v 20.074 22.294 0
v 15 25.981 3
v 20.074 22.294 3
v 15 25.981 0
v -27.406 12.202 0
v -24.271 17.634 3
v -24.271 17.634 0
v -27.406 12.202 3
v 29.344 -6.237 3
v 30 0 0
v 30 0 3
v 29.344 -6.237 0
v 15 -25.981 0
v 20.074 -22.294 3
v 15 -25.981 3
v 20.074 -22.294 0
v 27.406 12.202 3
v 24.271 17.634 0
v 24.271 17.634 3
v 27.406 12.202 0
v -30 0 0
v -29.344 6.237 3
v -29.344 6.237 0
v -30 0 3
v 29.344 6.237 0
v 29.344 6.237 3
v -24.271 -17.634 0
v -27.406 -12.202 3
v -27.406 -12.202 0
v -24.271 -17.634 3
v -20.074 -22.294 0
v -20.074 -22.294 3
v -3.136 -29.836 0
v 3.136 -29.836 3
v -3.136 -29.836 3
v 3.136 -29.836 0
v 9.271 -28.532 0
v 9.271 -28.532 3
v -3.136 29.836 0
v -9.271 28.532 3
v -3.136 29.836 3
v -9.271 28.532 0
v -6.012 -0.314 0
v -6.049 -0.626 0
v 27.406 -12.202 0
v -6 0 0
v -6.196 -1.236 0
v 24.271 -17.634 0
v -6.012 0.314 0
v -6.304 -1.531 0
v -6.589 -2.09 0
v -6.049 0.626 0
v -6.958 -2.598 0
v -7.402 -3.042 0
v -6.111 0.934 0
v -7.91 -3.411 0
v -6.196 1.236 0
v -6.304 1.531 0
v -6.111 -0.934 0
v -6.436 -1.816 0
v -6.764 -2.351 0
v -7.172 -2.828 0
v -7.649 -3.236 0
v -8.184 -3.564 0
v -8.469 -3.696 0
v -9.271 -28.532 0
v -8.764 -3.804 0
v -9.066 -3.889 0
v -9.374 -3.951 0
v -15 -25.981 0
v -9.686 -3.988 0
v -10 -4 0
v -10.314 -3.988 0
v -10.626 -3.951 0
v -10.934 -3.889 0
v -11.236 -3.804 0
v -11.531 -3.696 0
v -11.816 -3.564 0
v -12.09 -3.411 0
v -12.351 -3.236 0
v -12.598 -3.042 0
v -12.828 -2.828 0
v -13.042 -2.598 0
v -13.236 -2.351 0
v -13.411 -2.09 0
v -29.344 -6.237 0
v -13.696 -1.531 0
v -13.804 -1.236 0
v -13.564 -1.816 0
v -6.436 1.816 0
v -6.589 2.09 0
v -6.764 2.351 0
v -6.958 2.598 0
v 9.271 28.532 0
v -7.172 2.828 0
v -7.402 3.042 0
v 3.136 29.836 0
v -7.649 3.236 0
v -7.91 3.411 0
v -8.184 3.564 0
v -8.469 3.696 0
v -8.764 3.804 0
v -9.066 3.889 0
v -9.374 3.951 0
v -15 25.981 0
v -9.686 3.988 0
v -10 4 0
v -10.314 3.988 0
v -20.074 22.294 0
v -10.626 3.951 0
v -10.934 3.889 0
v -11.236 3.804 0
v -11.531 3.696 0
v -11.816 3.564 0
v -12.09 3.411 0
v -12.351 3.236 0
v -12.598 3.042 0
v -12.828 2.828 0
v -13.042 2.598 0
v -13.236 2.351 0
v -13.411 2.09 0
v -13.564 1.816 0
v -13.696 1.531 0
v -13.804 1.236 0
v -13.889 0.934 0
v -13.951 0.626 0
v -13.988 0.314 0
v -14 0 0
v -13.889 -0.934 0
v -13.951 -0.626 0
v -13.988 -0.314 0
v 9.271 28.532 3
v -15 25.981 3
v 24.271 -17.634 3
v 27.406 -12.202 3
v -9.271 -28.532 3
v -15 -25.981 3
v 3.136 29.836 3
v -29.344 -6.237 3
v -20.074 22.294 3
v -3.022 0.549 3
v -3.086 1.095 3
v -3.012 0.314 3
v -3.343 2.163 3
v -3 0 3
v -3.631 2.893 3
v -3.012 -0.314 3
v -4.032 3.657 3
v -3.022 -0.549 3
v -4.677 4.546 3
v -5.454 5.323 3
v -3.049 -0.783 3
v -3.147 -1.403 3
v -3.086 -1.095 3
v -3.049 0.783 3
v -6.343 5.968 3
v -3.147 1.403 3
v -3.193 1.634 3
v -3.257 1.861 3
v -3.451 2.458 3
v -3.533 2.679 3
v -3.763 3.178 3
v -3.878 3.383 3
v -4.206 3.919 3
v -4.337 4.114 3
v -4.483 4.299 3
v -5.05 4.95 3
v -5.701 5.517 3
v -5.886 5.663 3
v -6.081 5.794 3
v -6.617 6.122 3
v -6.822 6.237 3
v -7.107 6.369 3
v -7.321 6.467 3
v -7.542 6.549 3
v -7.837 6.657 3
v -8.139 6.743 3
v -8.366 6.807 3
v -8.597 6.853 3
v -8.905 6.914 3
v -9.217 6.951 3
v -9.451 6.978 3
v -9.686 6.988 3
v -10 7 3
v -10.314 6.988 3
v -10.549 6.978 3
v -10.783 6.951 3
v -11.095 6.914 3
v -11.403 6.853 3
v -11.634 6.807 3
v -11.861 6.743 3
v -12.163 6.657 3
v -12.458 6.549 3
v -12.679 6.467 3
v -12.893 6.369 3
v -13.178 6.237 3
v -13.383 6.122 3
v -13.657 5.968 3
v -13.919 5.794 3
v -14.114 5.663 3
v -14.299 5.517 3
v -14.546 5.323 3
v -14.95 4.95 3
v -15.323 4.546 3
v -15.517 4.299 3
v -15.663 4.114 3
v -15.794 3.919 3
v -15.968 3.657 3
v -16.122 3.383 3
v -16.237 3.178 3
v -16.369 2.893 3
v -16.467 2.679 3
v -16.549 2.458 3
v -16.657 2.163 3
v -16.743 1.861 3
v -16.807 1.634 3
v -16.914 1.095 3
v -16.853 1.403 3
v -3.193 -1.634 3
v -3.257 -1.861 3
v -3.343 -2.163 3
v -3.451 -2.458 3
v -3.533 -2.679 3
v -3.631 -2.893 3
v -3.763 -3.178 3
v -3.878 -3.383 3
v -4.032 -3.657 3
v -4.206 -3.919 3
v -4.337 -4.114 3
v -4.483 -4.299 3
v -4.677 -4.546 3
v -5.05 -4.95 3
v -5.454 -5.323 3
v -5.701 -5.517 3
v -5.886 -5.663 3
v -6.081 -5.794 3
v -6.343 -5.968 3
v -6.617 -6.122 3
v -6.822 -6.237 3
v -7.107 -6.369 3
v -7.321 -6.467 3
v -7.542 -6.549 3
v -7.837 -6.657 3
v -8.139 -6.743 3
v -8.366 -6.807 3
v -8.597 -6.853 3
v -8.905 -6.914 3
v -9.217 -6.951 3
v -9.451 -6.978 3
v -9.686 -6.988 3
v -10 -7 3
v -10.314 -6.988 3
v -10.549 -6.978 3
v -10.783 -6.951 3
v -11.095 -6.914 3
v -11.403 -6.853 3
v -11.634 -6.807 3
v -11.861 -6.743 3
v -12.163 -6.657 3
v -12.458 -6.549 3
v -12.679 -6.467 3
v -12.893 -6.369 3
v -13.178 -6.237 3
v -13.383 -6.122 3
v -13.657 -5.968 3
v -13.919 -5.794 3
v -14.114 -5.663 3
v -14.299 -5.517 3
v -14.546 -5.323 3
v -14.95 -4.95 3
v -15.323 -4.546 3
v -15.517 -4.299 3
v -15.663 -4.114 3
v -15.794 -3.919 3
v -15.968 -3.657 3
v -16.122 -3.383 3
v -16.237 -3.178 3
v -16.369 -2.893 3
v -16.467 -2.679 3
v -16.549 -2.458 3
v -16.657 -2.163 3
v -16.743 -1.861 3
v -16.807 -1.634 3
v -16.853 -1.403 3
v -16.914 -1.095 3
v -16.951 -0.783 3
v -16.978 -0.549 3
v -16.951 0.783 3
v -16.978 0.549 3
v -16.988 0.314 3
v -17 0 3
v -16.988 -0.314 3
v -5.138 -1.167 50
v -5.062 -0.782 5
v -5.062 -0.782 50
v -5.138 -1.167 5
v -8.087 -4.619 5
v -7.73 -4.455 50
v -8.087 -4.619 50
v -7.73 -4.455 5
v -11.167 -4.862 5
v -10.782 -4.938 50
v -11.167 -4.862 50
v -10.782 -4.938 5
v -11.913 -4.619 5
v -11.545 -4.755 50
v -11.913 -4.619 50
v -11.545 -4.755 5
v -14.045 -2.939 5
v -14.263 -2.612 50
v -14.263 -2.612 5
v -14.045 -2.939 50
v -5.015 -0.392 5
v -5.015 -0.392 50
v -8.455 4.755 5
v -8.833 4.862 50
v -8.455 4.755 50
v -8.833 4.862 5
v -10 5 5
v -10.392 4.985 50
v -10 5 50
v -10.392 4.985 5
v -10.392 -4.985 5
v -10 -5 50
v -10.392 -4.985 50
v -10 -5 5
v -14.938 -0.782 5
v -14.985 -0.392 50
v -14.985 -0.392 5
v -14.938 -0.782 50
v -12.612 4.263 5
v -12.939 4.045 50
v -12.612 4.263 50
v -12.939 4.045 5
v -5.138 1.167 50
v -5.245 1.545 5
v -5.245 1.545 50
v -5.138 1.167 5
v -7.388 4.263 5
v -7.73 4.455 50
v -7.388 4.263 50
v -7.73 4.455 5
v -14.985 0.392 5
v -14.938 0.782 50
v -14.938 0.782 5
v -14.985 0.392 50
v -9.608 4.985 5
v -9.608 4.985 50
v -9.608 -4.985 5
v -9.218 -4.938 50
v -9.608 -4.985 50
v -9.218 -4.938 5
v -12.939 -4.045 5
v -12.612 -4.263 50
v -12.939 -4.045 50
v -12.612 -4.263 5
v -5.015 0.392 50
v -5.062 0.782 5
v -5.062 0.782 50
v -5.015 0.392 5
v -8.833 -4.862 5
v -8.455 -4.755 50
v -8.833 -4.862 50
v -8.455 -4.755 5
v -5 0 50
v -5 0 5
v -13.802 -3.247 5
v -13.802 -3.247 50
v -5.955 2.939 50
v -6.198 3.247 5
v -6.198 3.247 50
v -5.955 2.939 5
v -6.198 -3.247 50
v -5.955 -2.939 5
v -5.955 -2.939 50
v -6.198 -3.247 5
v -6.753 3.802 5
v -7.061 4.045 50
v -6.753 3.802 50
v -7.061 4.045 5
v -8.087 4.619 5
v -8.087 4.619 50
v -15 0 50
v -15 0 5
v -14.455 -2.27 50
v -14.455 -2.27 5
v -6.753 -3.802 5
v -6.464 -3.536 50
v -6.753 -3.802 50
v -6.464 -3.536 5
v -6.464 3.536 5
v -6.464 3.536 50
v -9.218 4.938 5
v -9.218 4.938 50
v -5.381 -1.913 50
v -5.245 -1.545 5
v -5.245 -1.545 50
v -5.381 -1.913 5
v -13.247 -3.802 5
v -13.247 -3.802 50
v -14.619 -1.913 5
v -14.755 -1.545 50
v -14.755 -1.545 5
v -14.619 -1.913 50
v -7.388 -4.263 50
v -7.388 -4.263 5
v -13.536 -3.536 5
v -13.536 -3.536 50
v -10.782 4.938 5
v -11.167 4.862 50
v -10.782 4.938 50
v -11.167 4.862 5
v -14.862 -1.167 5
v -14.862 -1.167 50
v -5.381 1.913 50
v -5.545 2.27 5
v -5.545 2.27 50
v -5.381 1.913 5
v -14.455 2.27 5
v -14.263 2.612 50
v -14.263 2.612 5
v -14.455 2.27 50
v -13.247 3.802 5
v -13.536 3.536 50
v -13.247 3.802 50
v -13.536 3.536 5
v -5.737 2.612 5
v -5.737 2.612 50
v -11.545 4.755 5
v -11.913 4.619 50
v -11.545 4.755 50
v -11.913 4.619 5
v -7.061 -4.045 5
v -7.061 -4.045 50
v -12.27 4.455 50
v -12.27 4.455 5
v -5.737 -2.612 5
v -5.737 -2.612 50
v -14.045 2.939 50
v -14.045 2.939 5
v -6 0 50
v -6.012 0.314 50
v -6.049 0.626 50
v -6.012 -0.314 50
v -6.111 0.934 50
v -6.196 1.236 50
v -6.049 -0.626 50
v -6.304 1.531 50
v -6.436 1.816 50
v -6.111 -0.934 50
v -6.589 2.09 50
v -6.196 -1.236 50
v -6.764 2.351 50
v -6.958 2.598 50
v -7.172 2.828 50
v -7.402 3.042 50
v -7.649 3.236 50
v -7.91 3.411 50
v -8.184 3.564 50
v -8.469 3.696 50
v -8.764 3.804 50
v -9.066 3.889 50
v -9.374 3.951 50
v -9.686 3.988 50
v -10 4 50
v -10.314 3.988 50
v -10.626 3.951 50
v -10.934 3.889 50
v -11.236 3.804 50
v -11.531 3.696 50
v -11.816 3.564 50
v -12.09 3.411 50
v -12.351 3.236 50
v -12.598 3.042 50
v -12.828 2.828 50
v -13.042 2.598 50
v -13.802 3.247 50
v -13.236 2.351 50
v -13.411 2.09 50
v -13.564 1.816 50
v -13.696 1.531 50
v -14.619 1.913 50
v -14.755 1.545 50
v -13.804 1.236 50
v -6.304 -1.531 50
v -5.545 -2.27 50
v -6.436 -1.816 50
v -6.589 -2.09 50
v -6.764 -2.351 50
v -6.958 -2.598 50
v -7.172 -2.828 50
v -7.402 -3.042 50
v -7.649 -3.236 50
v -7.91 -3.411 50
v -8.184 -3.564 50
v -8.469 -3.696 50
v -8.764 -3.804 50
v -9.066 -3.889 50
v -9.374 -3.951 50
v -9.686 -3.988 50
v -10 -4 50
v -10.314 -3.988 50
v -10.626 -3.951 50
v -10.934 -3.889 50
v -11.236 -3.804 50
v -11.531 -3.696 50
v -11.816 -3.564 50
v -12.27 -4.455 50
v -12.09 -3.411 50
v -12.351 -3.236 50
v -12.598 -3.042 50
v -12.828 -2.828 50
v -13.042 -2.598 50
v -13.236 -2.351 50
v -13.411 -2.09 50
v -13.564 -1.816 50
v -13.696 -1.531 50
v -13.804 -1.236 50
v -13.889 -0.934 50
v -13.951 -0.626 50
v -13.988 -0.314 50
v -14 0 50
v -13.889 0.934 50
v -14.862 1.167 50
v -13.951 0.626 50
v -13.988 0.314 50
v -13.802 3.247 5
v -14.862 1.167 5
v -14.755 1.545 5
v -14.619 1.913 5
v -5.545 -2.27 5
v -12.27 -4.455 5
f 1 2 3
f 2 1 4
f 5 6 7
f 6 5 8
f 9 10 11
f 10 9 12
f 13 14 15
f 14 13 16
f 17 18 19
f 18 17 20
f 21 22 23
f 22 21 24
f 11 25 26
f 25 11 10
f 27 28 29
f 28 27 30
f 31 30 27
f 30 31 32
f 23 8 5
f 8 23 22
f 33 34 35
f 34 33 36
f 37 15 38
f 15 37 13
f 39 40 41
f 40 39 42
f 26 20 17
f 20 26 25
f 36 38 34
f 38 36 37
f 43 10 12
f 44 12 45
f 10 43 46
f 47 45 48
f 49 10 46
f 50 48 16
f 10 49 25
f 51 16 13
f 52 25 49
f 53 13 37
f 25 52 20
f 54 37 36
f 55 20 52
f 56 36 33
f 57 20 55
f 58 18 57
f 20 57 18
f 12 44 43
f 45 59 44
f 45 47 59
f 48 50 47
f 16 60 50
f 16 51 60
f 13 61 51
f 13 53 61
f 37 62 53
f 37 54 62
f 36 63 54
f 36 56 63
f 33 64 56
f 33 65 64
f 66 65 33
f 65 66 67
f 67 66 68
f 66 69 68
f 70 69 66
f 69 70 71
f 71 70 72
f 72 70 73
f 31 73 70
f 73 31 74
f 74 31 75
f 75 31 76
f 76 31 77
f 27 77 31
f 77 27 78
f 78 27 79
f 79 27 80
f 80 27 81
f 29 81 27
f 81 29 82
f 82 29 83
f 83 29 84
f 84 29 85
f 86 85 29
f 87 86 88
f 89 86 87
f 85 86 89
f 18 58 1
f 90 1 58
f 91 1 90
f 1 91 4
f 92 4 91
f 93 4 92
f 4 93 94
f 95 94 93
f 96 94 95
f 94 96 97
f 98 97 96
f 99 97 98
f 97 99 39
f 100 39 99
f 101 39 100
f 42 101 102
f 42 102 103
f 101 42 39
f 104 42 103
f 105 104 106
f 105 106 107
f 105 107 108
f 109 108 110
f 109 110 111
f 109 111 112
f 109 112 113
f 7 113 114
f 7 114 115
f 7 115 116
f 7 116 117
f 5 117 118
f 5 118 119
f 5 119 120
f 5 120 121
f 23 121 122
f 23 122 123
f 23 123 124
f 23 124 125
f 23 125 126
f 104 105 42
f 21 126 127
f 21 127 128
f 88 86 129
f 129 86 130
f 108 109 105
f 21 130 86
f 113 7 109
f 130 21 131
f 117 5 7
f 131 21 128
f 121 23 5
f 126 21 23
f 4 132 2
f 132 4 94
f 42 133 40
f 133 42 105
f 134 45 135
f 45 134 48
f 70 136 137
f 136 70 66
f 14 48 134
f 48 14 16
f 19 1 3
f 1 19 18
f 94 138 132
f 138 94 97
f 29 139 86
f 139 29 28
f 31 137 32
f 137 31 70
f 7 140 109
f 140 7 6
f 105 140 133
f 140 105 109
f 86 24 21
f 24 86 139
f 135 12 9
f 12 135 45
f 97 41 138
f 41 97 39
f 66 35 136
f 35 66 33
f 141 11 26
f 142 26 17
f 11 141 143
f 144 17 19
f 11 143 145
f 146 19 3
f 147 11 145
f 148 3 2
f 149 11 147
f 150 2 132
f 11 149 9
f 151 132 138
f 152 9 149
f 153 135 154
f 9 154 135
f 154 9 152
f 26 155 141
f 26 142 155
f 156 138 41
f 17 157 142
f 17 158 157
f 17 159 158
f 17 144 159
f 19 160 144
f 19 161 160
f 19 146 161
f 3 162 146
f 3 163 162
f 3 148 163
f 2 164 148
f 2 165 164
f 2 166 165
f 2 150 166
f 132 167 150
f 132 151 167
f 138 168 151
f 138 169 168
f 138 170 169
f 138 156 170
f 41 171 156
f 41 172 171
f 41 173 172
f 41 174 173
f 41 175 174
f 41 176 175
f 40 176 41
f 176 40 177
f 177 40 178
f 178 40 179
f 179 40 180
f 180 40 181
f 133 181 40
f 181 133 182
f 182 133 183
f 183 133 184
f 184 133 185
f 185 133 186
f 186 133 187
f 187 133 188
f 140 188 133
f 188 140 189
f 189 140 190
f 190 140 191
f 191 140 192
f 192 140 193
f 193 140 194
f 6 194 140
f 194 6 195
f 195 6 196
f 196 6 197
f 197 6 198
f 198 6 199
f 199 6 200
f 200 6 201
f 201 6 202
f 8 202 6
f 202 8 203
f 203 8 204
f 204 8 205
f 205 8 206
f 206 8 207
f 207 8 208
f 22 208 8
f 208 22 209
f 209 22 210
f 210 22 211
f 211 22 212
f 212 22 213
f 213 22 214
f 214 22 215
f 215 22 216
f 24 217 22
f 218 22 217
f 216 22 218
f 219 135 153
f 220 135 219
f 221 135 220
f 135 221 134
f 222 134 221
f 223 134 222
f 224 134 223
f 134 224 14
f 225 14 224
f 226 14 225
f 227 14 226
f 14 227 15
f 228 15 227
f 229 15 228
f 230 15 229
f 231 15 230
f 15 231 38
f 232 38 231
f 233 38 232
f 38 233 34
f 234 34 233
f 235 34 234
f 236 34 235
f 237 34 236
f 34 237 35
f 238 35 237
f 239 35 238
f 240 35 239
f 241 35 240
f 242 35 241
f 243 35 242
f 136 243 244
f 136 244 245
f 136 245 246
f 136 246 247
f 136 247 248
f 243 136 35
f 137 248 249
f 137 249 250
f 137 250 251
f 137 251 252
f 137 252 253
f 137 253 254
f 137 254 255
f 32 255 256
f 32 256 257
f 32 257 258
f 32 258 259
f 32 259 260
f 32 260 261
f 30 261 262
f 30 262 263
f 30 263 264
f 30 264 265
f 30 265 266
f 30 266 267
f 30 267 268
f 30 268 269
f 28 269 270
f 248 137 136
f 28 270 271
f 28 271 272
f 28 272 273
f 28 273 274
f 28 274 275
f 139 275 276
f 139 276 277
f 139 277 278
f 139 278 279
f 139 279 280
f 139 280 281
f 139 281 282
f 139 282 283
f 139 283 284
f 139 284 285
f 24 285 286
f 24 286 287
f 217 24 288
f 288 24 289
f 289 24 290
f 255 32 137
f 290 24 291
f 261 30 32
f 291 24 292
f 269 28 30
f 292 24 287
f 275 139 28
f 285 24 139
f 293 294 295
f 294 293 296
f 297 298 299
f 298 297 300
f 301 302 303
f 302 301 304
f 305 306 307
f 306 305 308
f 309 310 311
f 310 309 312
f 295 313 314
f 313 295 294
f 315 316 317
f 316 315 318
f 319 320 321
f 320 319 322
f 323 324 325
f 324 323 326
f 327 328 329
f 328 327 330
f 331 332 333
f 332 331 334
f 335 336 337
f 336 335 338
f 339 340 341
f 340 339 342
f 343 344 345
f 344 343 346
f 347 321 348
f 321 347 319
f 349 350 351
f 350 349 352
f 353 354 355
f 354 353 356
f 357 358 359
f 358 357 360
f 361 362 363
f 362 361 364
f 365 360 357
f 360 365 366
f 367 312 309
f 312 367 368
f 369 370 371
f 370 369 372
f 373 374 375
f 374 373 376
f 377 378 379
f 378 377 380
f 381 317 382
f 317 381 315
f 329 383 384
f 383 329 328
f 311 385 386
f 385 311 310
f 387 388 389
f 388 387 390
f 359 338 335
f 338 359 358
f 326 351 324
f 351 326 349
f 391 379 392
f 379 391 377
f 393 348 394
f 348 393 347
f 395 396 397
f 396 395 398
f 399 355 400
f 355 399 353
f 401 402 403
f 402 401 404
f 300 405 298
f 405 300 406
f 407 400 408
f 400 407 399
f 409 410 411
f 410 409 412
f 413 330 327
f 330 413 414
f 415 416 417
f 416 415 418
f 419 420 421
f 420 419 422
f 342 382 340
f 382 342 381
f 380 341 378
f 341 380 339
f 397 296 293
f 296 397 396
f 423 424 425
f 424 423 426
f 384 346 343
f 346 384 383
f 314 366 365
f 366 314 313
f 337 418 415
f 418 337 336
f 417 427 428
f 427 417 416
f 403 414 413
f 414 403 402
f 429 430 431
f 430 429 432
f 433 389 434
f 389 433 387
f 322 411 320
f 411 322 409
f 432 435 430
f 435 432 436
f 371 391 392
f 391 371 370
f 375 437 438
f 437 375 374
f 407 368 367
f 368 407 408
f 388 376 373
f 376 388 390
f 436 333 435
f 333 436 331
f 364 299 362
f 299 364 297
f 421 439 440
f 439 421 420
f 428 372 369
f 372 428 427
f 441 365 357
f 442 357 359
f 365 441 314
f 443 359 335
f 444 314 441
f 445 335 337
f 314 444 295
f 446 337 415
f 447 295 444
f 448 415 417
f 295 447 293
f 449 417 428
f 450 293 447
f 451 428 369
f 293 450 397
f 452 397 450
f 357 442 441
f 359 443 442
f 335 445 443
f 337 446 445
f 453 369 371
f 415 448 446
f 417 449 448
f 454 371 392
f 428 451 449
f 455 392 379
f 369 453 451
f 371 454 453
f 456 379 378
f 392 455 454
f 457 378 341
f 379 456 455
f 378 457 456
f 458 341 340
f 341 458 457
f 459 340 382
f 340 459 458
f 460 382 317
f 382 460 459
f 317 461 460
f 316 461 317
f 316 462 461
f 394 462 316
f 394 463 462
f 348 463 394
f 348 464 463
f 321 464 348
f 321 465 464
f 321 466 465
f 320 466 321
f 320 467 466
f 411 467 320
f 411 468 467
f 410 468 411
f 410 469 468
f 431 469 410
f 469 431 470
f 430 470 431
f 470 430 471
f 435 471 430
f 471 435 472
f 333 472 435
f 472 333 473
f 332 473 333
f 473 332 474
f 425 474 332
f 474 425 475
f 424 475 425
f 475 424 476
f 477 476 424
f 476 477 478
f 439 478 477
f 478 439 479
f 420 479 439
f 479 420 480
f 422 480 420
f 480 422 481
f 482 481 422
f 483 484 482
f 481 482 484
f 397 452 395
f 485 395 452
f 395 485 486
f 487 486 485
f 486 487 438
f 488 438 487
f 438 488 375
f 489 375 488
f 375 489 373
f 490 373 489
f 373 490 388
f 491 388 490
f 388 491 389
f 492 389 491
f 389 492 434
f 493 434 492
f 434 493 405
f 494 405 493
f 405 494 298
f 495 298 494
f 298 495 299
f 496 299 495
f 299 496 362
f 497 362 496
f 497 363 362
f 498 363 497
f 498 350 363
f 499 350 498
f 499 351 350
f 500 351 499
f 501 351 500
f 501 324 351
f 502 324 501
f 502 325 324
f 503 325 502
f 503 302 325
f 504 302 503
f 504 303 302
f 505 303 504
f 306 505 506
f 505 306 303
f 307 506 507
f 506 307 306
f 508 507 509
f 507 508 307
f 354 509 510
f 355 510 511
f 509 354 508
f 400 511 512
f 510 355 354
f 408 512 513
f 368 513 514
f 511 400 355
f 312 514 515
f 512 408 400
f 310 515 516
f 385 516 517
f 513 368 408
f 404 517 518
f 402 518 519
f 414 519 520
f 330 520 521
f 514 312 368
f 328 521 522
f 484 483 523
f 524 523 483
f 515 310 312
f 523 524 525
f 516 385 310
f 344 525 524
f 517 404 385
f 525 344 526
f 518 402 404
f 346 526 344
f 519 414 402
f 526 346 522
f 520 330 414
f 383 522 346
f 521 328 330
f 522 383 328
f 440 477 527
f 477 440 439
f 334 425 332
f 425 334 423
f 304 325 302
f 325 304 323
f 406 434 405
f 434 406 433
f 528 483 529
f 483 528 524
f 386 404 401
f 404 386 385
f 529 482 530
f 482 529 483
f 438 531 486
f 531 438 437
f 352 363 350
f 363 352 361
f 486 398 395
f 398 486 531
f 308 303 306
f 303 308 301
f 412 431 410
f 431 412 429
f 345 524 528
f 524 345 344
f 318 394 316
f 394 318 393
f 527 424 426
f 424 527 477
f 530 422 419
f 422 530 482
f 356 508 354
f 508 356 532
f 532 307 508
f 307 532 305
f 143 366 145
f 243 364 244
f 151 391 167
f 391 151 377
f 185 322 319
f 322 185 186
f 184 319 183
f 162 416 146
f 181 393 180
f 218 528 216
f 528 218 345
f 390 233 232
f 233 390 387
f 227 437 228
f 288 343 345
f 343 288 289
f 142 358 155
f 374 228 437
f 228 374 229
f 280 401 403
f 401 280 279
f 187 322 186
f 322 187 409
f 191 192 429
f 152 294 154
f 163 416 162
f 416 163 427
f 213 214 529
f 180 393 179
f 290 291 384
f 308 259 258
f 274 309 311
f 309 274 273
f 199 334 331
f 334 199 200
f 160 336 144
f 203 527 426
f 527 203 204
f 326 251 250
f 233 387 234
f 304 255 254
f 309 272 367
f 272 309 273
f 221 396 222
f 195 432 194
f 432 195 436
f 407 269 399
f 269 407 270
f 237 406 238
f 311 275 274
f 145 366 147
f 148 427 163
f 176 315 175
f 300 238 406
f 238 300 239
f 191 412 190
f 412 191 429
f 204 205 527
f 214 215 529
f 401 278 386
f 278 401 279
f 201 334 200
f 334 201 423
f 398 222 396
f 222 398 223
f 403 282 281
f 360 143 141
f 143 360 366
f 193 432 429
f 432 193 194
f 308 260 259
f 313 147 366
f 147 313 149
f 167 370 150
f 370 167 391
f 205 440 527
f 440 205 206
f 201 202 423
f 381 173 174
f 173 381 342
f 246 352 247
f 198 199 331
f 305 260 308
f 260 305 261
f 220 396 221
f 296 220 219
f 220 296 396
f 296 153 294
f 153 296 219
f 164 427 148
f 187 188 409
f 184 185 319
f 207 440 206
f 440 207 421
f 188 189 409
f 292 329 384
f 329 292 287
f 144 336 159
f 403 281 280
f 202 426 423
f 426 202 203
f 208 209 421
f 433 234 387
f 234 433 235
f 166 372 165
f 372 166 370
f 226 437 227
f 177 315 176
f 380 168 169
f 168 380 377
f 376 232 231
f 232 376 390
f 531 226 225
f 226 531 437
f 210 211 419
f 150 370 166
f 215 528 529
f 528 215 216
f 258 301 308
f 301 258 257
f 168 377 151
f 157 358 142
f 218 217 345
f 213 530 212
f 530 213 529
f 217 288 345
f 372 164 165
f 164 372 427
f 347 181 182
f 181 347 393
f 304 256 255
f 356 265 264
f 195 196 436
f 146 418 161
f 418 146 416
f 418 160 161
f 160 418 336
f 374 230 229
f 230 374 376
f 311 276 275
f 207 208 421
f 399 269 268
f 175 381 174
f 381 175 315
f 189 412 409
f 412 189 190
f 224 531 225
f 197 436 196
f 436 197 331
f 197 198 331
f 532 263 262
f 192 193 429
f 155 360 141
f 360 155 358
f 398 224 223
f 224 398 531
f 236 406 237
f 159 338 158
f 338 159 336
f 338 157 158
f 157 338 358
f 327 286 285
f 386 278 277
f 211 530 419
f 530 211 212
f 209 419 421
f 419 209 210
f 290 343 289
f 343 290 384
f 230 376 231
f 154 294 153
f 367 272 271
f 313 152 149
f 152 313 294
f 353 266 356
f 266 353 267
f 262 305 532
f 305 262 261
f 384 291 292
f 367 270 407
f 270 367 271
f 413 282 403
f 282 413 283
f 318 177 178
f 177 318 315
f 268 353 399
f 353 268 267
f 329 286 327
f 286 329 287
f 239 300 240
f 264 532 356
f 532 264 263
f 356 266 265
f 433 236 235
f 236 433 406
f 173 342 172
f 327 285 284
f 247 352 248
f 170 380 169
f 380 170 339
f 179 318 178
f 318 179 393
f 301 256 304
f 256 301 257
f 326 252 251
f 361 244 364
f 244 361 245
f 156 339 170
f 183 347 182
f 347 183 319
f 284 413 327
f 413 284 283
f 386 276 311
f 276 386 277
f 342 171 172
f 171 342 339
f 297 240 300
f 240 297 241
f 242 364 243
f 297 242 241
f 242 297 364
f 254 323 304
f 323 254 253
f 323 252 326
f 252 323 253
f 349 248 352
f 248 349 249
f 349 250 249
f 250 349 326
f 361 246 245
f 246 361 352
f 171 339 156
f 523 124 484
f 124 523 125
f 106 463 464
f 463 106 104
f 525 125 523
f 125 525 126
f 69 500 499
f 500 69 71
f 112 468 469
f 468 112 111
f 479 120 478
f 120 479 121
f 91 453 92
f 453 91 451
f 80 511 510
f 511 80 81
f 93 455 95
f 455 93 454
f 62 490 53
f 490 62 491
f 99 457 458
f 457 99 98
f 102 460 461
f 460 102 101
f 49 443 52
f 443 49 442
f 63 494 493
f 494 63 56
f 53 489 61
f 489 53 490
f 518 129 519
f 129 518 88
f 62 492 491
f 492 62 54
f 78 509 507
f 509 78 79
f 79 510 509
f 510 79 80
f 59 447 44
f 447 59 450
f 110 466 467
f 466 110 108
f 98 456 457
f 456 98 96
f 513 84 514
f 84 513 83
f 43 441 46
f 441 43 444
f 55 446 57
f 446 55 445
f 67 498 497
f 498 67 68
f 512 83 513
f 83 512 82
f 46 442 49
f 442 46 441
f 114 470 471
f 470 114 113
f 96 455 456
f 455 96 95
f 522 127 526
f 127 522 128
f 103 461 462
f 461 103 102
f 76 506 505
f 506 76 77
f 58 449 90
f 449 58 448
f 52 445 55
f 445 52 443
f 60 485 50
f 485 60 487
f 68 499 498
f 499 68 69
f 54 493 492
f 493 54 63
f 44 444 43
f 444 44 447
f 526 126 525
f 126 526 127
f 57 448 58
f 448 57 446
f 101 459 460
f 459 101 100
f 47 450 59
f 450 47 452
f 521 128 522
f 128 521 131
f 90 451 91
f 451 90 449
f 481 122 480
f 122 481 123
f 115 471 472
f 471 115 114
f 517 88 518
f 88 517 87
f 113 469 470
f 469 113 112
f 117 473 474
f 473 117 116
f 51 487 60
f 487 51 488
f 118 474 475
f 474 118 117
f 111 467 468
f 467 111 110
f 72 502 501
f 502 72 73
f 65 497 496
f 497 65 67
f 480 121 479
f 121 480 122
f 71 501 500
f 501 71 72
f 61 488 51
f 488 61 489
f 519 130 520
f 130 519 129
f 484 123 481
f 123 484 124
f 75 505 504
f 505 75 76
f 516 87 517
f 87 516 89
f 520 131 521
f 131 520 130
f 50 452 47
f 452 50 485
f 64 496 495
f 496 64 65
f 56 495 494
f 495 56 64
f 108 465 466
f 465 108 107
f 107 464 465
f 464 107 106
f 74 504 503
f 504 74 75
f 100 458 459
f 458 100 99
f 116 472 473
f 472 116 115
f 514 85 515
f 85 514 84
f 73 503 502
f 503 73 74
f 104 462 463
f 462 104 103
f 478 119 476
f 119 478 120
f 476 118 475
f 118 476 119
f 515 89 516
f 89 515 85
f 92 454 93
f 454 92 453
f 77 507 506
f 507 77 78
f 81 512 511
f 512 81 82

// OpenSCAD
difference() {
   union() {
      cylinder(d=60,h=3);
      translate([-10,0,0]) cylinder($fn=80,d=10,h=50);
      translate([-10,0,0]) cylinder($fn=80,d1=20,d2=10,h=5);
   }
   translate([-10,0,-0.5]) cylinder($fn=80,d=8,h=51);
}
